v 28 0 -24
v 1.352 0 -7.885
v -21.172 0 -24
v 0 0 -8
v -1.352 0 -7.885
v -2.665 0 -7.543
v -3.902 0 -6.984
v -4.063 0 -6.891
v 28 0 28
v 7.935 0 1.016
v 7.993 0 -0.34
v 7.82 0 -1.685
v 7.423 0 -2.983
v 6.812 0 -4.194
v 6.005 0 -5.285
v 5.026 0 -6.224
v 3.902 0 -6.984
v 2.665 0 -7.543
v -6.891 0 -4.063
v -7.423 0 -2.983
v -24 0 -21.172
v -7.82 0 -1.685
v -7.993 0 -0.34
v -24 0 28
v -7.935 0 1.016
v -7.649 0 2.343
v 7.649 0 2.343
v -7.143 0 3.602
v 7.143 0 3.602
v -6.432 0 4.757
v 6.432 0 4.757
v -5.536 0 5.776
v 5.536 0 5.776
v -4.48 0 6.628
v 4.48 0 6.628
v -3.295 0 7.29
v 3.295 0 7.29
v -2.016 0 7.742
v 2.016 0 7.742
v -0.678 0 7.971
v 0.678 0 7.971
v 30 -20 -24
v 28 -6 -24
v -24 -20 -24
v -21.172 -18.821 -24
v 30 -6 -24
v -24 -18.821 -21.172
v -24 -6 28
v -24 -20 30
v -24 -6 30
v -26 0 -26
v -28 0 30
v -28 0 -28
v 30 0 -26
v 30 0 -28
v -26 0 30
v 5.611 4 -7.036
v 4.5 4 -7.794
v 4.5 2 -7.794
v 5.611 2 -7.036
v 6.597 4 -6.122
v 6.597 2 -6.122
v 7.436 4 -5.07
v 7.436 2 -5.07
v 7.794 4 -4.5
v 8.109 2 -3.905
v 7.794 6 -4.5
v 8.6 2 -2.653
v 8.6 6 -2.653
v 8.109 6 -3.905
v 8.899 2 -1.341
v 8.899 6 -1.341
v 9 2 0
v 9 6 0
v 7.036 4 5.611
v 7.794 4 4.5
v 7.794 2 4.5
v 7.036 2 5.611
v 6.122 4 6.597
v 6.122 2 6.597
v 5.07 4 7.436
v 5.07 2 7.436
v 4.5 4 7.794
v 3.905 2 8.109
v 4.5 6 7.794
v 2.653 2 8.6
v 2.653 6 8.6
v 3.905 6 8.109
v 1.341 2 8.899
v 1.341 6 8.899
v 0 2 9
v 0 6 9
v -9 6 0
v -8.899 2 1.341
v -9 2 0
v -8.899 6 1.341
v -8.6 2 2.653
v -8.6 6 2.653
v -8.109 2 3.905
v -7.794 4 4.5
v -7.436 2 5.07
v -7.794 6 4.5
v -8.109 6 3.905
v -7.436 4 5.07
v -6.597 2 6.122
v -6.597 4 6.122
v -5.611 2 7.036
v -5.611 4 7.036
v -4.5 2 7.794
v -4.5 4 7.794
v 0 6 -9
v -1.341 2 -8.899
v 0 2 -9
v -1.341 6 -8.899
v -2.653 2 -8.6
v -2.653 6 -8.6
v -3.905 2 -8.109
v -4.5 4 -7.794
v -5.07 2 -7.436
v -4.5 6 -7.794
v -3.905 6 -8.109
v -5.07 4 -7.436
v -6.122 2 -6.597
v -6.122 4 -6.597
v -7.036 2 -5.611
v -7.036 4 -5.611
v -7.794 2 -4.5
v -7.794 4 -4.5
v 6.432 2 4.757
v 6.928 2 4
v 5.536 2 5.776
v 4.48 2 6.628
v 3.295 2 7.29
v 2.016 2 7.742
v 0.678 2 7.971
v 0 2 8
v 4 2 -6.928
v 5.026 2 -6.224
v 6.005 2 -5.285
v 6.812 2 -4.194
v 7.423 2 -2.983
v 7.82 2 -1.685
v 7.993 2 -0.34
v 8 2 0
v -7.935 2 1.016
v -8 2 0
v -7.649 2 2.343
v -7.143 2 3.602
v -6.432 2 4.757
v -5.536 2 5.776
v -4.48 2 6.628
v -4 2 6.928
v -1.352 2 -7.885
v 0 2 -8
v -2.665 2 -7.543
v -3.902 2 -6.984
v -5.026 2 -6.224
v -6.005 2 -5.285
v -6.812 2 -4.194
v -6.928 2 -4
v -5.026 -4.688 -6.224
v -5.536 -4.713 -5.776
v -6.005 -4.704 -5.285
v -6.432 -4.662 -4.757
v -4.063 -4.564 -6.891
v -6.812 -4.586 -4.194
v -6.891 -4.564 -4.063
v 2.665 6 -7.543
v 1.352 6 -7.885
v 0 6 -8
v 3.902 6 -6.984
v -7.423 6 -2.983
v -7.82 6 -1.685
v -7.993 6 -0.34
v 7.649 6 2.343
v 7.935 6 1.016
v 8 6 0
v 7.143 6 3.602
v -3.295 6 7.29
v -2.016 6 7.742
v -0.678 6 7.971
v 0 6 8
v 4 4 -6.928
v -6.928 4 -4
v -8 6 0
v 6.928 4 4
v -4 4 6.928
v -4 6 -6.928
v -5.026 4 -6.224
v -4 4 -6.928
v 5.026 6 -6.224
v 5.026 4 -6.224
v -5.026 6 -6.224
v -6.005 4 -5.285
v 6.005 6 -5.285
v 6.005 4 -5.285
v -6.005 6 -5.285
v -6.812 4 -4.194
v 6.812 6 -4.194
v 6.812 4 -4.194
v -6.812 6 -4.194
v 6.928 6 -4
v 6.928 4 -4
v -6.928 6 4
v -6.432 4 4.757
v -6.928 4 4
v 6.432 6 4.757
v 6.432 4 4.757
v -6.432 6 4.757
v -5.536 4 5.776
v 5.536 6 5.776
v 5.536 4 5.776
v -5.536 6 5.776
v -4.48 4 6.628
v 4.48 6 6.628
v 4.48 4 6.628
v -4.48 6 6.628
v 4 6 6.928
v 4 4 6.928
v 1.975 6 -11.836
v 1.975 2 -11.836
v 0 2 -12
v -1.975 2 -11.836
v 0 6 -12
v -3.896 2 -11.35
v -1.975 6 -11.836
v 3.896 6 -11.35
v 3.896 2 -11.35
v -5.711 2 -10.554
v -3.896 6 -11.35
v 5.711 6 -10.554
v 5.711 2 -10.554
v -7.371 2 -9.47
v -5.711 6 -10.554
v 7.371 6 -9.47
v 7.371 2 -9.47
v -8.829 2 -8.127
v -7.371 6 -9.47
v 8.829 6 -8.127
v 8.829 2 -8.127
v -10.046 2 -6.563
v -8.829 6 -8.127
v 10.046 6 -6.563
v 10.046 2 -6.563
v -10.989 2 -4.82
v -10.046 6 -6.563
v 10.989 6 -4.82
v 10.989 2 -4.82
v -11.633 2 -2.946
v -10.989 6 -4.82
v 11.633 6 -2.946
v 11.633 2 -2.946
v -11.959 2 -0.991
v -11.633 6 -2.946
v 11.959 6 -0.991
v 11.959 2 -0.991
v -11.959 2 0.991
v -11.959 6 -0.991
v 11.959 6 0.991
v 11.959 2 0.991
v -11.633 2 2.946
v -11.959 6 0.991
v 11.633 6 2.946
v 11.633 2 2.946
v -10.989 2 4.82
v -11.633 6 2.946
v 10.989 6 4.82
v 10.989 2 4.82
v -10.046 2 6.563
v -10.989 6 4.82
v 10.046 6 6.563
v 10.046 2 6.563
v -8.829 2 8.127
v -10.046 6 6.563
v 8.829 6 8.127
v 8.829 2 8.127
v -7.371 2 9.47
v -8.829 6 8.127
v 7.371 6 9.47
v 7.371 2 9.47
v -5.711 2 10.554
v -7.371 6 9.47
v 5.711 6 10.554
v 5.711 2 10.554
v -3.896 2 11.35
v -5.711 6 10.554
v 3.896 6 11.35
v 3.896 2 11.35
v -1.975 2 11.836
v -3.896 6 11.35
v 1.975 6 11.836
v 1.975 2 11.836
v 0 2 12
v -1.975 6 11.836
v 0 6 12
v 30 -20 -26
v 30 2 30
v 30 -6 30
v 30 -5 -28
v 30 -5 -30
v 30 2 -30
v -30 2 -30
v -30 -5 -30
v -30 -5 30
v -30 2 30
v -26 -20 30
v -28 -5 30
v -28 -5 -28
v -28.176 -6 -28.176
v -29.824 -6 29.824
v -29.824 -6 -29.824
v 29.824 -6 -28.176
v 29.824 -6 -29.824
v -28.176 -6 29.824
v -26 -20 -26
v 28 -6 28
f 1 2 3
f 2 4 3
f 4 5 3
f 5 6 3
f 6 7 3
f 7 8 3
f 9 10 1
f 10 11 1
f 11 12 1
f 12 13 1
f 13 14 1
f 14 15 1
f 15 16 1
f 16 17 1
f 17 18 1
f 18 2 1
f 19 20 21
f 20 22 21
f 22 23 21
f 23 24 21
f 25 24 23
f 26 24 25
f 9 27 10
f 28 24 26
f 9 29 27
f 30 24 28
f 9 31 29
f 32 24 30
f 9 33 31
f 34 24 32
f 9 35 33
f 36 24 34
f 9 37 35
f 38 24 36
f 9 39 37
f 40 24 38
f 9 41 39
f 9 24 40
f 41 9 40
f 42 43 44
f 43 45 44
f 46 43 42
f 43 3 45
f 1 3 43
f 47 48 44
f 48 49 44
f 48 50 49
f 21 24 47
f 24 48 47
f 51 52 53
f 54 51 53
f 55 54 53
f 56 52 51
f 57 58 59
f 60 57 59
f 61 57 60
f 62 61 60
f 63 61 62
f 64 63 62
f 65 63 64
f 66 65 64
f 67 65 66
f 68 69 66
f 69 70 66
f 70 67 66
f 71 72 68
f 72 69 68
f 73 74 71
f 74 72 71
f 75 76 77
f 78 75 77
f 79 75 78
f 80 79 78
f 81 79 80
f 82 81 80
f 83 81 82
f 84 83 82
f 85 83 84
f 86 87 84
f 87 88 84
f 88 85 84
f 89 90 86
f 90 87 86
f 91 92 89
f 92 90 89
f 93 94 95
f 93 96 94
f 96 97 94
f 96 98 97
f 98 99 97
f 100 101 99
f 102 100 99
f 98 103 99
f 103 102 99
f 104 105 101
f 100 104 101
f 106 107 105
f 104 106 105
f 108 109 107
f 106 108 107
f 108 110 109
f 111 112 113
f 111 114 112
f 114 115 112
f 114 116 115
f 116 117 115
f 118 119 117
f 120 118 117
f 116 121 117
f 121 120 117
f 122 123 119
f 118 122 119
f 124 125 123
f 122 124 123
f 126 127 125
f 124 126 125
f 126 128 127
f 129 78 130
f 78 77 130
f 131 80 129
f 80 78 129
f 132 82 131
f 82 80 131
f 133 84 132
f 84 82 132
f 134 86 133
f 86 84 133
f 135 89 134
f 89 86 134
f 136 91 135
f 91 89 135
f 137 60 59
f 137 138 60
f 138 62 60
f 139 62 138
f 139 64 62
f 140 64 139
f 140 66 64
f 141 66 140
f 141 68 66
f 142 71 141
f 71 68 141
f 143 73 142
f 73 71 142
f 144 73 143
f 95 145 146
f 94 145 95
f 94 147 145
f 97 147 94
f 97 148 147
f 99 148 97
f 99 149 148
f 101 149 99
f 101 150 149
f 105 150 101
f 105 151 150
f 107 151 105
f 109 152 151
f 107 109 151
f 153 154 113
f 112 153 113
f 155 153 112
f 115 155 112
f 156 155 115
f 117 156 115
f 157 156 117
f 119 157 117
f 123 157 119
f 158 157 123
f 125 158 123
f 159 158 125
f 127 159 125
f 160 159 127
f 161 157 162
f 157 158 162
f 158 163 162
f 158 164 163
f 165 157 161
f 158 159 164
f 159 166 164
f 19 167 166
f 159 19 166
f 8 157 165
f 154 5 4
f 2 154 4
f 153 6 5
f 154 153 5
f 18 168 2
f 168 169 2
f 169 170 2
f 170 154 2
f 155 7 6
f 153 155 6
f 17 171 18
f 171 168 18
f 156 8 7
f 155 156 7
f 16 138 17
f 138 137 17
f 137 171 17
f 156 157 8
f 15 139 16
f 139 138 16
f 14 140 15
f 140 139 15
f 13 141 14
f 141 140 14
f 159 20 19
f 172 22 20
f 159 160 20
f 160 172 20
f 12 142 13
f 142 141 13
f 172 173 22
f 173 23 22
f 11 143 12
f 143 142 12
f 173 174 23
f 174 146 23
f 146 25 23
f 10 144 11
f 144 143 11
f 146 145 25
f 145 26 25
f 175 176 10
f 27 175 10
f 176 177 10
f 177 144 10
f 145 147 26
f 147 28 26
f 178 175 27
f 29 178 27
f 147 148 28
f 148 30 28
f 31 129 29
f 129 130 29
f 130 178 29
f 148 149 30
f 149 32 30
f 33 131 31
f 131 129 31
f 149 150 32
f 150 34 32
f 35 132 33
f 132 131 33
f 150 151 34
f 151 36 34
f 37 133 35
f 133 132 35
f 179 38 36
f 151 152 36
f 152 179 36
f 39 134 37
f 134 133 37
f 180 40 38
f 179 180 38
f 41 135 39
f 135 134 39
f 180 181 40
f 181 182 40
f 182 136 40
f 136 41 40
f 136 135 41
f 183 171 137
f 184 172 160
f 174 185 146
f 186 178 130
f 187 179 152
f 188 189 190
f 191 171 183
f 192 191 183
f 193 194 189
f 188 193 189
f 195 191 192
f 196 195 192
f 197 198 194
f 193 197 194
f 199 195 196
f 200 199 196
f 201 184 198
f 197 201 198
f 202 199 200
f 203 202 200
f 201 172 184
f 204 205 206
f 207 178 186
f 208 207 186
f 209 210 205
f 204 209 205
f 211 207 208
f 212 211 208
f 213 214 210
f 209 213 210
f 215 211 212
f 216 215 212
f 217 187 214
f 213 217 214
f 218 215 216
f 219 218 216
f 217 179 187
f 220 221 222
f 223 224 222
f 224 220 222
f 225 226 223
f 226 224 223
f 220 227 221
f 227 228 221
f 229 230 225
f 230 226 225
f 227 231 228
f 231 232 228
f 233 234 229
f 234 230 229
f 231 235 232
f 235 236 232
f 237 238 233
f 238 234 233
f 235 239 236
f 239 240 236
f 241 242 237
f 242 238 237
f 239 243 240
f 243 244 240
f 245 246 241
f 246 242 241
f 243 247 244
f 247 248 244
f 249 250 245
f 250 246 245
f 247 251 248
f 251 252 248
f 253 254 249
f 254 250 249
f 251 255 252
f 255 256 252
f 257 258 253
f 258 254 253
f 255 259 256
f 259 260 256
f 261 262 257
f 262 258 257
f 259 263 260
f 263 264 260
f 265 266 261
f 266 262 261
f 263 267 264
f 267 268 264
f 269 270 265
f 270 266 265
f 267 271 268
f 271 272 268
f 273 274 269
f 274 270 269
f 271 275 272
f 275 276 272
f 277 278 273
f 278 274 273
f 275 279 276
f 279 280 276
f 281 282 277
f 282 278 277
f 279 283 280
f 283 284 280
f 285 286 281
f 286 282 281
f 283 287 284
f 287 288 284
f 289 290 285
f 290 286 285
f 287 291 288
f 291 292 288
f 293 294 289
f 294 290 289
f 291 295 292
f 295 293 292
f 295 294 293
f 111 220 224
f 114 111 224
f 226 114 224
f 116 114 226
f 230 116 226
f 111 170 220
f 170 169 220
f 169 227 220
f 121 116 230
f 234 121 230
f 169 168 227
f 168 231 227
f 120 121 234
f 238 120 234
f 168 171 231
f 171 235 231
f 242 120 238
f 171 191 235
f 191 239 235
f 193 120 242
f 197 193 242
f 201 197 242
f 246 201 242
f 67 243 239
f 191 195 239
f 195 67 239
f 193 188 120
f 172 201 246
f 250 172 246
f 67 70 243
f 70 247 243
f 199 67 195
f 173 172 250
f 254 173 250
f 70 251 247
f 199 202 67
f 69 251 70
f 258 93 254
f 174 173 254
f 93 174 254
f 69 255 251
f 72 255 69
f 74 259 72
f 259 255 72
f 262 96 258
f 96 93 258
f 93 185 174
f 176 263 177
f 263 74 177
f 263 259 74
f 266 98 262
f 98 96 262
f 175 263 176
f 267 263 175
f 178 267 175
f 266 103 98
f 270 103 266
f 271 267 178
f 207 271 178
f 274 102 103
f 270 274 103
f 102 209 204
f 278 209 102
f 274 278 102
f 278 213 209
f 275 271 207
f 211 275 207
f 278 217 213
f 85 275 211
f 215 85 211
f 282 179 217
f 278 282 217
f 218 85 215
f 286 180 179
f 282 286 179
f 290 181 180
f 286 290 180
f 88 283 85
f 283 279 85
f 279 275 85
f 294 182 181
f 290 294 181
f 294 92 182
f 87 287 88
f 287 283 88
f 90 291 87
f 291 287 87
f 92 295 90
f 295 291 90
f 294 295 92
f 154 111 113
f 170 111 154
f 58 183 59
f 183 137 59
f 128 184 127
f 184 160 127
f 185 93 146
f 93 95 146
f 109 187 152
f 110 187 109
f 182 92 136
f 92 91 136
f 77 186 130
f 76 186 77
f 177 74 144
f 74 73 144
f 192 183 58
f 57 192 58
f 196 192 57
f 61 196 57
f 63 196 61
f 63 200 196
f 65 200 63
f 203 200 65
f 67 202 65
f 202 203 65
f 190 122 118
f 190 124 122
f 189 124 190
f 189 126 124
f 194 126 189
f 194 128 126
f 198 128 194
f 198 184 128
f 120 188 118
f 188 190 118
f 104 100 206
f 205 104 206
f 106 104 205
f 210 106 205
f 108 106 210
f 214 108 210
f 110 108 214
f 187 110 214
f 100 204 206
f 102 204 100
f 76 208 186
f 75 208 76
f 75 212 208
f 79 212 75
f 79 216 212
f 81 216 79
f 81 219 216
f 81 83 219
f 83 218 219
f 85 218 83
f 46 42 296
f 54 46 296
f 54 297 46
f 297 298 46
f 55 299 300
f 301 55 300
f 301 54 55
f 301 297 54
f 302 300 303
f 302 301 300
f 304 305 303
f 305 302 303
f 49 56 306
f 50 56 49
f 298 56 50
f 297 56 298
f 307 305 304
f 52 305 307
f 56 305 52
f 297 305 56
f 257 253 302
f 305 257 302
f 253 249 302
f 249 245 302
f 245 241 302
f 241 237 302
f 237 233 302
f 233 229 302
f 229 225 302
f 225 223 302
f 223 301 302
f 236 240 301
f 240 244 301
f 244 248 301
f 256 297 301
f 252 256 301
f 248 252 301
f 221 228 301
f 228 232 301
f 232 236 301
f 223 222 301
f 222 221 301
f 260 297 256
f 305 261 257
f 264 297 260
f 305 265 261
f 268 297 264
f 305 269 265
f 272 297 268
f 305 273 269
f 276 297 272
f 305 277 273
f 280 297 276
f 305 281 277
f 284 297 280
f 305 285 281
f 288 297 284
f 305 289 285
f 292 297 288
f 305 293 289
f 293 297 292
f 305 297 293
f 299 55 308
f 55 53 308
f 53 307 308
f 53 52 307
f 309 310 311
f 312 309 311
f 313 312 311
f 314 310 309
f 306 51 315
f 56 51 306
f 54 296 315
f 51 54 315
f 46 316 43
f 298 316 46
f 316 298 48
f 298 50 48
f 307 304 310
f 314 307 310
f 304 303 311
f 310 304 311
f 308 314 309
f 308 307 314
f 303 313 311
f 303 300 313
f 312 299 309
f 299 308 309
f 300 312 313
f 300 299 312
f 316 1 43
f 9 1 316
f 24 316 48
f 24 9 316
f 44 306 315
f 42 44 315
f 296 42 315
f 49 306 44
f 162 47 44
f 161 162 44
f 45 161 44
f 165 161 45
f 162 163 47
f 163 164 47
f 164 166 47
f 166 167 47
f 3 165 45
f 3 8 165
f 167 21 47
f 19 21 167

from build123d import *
from OCP.BRepFilletAPI import BRepFilletAPI_MakeChamfer
from build123d.topology import SkipClean

# Parameters (mm, degrees)
SKETCH1_R                 = 12
SKETCH1_R_2               = 8
BOSS_EXTRUDE4_DEPTH       = 2
BOSS_EXTRUDE5_START       = 2
SKETCH1_9_R               = 12
SKETCH1_9_R_2             = 9
BOSS_EXTRUDE5_DEPTH       = 4
BOSS_EXTRUDE6_START       = 2
BOSS_EXTRUDE6_DEPTH       = 2
BOSS_EXTRUDE7_START       = 4
BOSS_EXTRUDE7_DEPTH       = 2
SKETCH1_12_W              = 60
SKETCH1_12_H              = 60
SKETCH1_12_R              = 12
SKETCH1_12_R_2            = 9
SKETCH1_12_R_3            = 8
BOSS_EXTRUDE8_DEPTH       = 2
BOSS_EXTRUDE9_DEPTH       = 6
CHAMFER1_SIZE             = 1
CHAMFER1_SIZE2            = 0.176326981
BOSS_EXTRUDE10_DEPTH      = 6
BOSS_EXTRUDE11_DEPTH      = 20
BOSS_EXTRUDE12_DEPTH      = 2
BOSS_EXTRUDE12_DEPTH_BACK = 2
SKETCH1_14_R              = 8
CUT_EXTRUDE1_DEPTH        = 47.904157598


with BuildPart() as part:
    # Sketch1 → Boss-Extrude4 (new body)
    with BuildSketch(Plane(origin=(0, 0, 0), x_dir=(1, 0, 0), z_dir=(0, 1, 0))):
        with Locations(Location((0, 0, 0), (0, 0, 270))):
            Circle(SKETCH1_R)
        with Locations(Location((0, 0, 0), (0, 0, 270))):
            Circle(SKETCH1_R_2, mode=Mode.SUBTRACT)
    extrude(amount=BOSS_EXTRUDE4_DEPTH)

    # Sketch1<9> → Boss-Extrude5 (add)
    with BuildSketch(Plane(origin=(0, 0, 0), x_dir=(1, 0, 0), z_dir=(0, 1, 0)).offset(BOSS_EXTRUDE5_START)):
        with Locations(Location((0, 0, 0), (0, 0, 270))):
            Circle(SKETCH1_9_R)
        with Locations(Location((0, 0, 0), (0, 0, 270))):
            Circle(SKETCH1_9_R_2, mode=Mode.SUBTRACT)
    extrude(amount=BOSS_EXTRUDE5_DEPTH)

    # Sketch1<10> → Boss-Extrude6 (add)
    with SkipClean():  # the faces are left unmerged after this step: merging them gives an invalid solid
        with BuildSketch(Plane(origin=(0, 0, 0), x_dir=(1, 0, 0), z_dir=(0, 1, 0)).offset(BOSS_EXTRUDE6_START)):
            with BuildLine():
                ThreePointArc((0, 8), (2.070552361, 7.72740661), (4, 6.92820323))
                Line((4, 6.92820323), (4.5, 7.794228634))
                ThreePointArc((4.5, 7.794228634), (2.329371406, 8.693332437), (0, 9))
                Line((0, 9), (0, 8))
            make_face()
            with BuildLine():
                ThreePointArc((-8, 0), (-7.72740661, 2.070552361), (-6.92820323, 4))
                Line((-6.92820323, 4), (-7.794228634, 4.5))
                ThreePointArc((-7.794228634, 4.5), (-8.693332437, 2.329371406), (-9, 0))
                Line((-9, 0), (-8, 0))
            make_face()
            with BuildLine():
                Line((0, -9), (0, -8))
                ThreePointArc((0, -8), (-2.070552361, -7.72740661), (-4, -6.92820323))
                Line((-4, -6.92820323), (-4.5, -7.794228634))
                ThreePointArc((-4.5, -7.794228634), (-2.329371406, -8.693332437), (0, -9))
            make_face()
            with BuildLine():
                Line((9, 0), (8, 0))
                ThreePointArc((8, 0), (7.72740661, -2.070552361), (6.92820323, -4))
                Line((6.92820323, -4), (7.794228634, -4.5))
                ThreePointArc((7.794228634, -4.5), (8.693332437, -2.329371406), (9, 0))
            make_face()
        extrude(amount=BOSS_EXTRUDE6_DEPTH)

    # Sketch1<11> → Boss-Extrude7 (add)
    with SkipClean():  # the faces are left unmerged after this step: merging them gives an invalid solid
        with BuildSketch(Plane(origin=(0, 0, 0), x_dir=(1, 0, 0), z_dir=(0, 1, 0)).offset(BOSS_EXTRUDE7_START)):
            with BuildLine():
                ThreePointArc((0, 8), (2.070552361, 7.72740661), (4, 6.92820323))
                Line((4, 6.92820323), (4.5, 7.794228634))
                ThreePointArc((4.5, 7.794228634), (2.329371406, 8.693332437), (0, 9))
                Line((0, 9), (0, 8))
            make_face()
            with BuildLine():
                ThreePointArc((4, 6.92820323), (5.656854249, 5.656854249), (6.92820323, 4))
                Line((6.92820323, 4), (7.794228634, 4.5))
                ThreePointArc((7.794228634, 4.5), (6.363961031, 6.363961031), (4.5, 7.794228634))
                Line((4.5, 7.794228634), (4, 6.92820323))
            make_face()
            with BuildLine():
                ThreePointArc((-8, 0), (-7.72740661, 2.070552361), (-6.92820323, 4))
                Line((-6.92820323, 4), (-7.794228634, 4.5))
                ThreePointArc((-7.794228634, 4.5), (-8.693332437, 2.329371406), (-9, 0))
                Line((-9, 0), (-8, 0))
            make_face()
            with BuildLine():
                ThreePointArc((-6.92820323, 4), (-5.656854249, 5.656854249), (-4, 6.92820323))
                Line((-4, 6.92820323), (-4.5, 7.794228634))
                ThreePointArc((-4.5, 7.794228634), (-6.363961031, 6.363961031), (-7.794228634, 4.5))
                Line((-7.794228634, 4.5), (-6.92820323, 4))
            make_face()
            with BuildLine():
                Line((-4.5, -7.794228634), (-4, -6.92820323))
                ThreePointArc((-4, -6.92820323), (-5.656854249, -5.656854249), (-6.92820323, -4))
                Line((-6.92820323, -4), (-7.794228634, -4.5))
                ThreePointArc((-7.794228634, -4.5), (-6.363961031, -6.363961031), (-4.5, -7.794228634))
            make_face()
            with BuildLine():
                Line((0, -9), (0, -8))
                ThreePointArc((0, -8), (-2.070552361, -7.72740661), (-4, -6.92820323))
                Line((-4, -6.92820323), (-4.5, -7.794228634))
                ThreePointArc((-4.5, -7.794228634), (-2.329371406, -8.693332437), (0, -9))
            make_face()
            with BuildLine():
                Line((9, 0), (8, 0))
                ThreePointArc((8, 0), (7.72740661, -2.070552361), (6.92820323, -4))
                Line((6.92820323, -4), (7.794228634, -4.5))
                ThreePointArc((7.794228634, -4.5), (8.693332437, -2.329371406), (9, 0))
            make_face()
            with BuildLine():
                Line((7.794228634, -4.5), (6.92820323, -4))
                ThreePointArc((6.92820323, -4), (5.656854249, -5.656854249), (4, -6.92820323))
                Line((4, -6.92820323), (4.5, -7.794228634))
                ThreePointArc((4.5, -7.794228634), (6.363961031, -6.363961031), (7.794228634, -4.5))
            make_face()
        extrude(amount=BOSS_EXTRUDE7_DEPTH)

    # Sketch1<12> → Boss-Extrude8 (add)
    # profile 1 of 2: a face of its own
    with BuildSketch(Plane(origin=(0, 0, 0), x_dir=(1, 0, 0), z_dir=(0, 1, 0))):
        Rectangle(SKETCH1_12_W, SKETCH1_12_H)
        with Locations(Location((0, 0, 0), (0, 0, 270))):
            Circle(SKETCH1_12_R, mode=Mode.SUBTRACT)
    # profile 2 of 2: a face of its own
    with BuildSketch(Plane(origin=(0, 0, 0), x_dir=(1, 0, 0), z_dir=(0, 1, 0))):
        Circle(SKETCH1_12_R_2)
        with Locations(Location((0, 0, 0), (0, 0, 270))):
            Circle(SKETCH1_12_R_3, mode=Mode.SUBTRACT)
    extrude(amount=BOSS_EXTRUDE8_DEPTH)

    # Sketch3 → Boss-Extrude9 (add)
    with BuildSketch(Plane.XZ):
        Polygon((-30, -30), (30, -30), (30, -28), (-28, -28), (-28, 30), (-30, 30), align=None)
        Polygon((30, -26), (30, -24), (-24, -24), (-24, 30), (-26, 30), (-26, -26), align=None)
    extrude(amount=BOSS_EXTRUDE9_DEPTH)

    # Chamfer1: one chamfer whose edges measure the first distance from different faces: ONE call of the kernel's chamfer builder (chamfer() names one face for all edges)
    chamfer1_edges_1 = [part.edges().sort_by_distance(p)[0] for p in [
        (-28, -6, 1),
    ]]
    chamfer1_side_1 = [part.faces().sort_by_distance(p)[0] for p in [
        (-28, -3, 1),
    ]]
    chamfer1_edges_2 = [part.edges().sort_by_distance(p)[0] for p in [
        (1, -6, -28),
    ]]
    chamfer1_side_2 = [part.faces().sort_by_distance(p)[0] for p in [
        (1, -3, -28),
    ]]
    chamfer1_edges_3 = [part.edges().sort_by_distance(p)[0] for p in [
        (-29, -6, 30),
    ]]
    chamfer1_side_3 = [part.faces().sort_by_distance(p)[0] for p in [
        (-4.5, 0.333333333, 30),
    ]]
    chamfer1_edges_4 = [part.edges().sort_by_distance(p)[0] for p in [
        (-30, -6, 0),
    ]]
    chamfer1_side_4 = [part.faces().sort_by_distance(p)[0] for p in [
        (-30, -2, 0),
    ]]
    chamfer1_edges_5 = [part.edges().sort_by_distance(p)[0] for p in [
        (0, -6, -30),
    ]]
    chamfer1_side_5 = [part.faces().sort_by_distance(p)[0] for p in [
        (0, -2, -30),
    ]]
    chamfer1_edges_6 = [part.edges().sort_by_distance(p)[0] for p in [
        (30, -6, -29),
    ]]
    chamfer1_side_6 = [part.faces().sort_by_distance(p)[0] for p in [
        (30, 0.333333333, -4.5),
    ]]
    chamfer1 = BRepFilletAPI_MakeChamfer(part.part.solid().wrapped)
    for e in chamfer1_edges_1:
        chamfer1.Add(CHAMFER1_SIZE, CHAMFER1_SIZE2, e.wrapped, chamfer1_side_1[0].wrapped)  # the first distance lies on this face
    for e in chamfer1_edges_2:
        chamfer1.Add(CHAMFER1_SIZE, CHAMFER1_SIZE2, e.wrapped, chamfer1_side_2[0].wrapped)  # the first distance lies on this face
    for e in chamfer1_edges_3:
        chamfer1.Add(CHAMFER1_SIZE, CHAMFER1_SIZE2, e.wrapped, chamfer1_side_3[0].wrapped)  # the first distance lies on this face
    for e in chamfer1_edges_4:
        chamfer1.Add(CHAMFER1_SIZE, CHAMFER1_SIZE2, e.wrapped, chamfer1_side_4[0].wrapped)  # the first distance lies on this face
    for e in chamfer1_edges_5:
        chamfer1.Add(CHAMFER1_SIZE, CHAMFER1_SIZE2, e.wrapped, chamfer1_side_5[0].wrapped)  # the first distance lies on this face
    for e in chamfer1_edges_6:
        chamfer1.Add(CHAMFER1_SIZE, CHAMFER1_SIZE2, e.wrapped, chamfer1_side_6[0].wrapped)  # the first distance lies on this face
    add(Compound.cast(chamfer1.Shape()), mode=Mode.REPLACE)

    # Sketch6 → Boss-Extrude10 (add)
    with BuildSketch(Plane.XZ):
        Polygon((-24, 30), (-24, 28), (28, 28), (28, -24), (30, -24), (30, 30), align=None)
    extrude(amount=BOSS_EXTRUDE10_DEPTH)

    # Sketch3<3> → Boss-Extrude11 (add)
    with SkipClean():  # the faces are left unmerged after this step: merging them gives an invalid solid
        with BuildSketch(Plane.XZ):
            Polygon((-26, 30), (-26, -26), (-24, -24), (-24, 30), align=None)
            Polygon((-26, -26), (30, -26), (30, -24), (-24, -24), align=None)
        extrude(amount=BOSS_EXTRUDE11_DEPTH)

    # Sketch9 → Boss-Extrude12 (add, two sides: drawn at the far end of the back side and taken through both)
    with SkipClean():  # the faces are left unmerged after this step: merging them gives an invalid solid
        with BuildSketch(Plane(origin=(0, 0, 0), x_dir=(-0.7071067811865472, 0, -0.7071067811865478), z_dir=(0.7071067811865478, 0, -0.7071067811865472)).offset(-BOSS_EXTRUDE12_DEPTH_BACK)):
            Polygon((33.941125497, -20), (33.941125497, 0), (8, 0), (8, -4.714045208), align=None)
            Polygon((8, -4.714045208), (8, 0), (0, 0), align=None)
        extrude(amount=BOSS_EXTRUDE12_DEPTH + BOSS_EXTRUDE12_DEPTH_BACK)

    # Sketch1<14> → Cut-Extrude1 (cut, through all)
    with SkipClean():  # the faces are left unmerged after this step: merging them gives an invalid solid
        with BuildSketch(Plane(origin=(0, 0, 0), x_dir=(1, 0, 0), z_dir=(0, 1, 0))):
            with Locations(Location((0, 0, 0), (0, 0, 90))):
                Circle(SKETCH1_14_R)
        extrude(amount=-CUT_EXTRUDE1_DEPTH, mode=Mode.SUBTRACT)


solid = part.part
